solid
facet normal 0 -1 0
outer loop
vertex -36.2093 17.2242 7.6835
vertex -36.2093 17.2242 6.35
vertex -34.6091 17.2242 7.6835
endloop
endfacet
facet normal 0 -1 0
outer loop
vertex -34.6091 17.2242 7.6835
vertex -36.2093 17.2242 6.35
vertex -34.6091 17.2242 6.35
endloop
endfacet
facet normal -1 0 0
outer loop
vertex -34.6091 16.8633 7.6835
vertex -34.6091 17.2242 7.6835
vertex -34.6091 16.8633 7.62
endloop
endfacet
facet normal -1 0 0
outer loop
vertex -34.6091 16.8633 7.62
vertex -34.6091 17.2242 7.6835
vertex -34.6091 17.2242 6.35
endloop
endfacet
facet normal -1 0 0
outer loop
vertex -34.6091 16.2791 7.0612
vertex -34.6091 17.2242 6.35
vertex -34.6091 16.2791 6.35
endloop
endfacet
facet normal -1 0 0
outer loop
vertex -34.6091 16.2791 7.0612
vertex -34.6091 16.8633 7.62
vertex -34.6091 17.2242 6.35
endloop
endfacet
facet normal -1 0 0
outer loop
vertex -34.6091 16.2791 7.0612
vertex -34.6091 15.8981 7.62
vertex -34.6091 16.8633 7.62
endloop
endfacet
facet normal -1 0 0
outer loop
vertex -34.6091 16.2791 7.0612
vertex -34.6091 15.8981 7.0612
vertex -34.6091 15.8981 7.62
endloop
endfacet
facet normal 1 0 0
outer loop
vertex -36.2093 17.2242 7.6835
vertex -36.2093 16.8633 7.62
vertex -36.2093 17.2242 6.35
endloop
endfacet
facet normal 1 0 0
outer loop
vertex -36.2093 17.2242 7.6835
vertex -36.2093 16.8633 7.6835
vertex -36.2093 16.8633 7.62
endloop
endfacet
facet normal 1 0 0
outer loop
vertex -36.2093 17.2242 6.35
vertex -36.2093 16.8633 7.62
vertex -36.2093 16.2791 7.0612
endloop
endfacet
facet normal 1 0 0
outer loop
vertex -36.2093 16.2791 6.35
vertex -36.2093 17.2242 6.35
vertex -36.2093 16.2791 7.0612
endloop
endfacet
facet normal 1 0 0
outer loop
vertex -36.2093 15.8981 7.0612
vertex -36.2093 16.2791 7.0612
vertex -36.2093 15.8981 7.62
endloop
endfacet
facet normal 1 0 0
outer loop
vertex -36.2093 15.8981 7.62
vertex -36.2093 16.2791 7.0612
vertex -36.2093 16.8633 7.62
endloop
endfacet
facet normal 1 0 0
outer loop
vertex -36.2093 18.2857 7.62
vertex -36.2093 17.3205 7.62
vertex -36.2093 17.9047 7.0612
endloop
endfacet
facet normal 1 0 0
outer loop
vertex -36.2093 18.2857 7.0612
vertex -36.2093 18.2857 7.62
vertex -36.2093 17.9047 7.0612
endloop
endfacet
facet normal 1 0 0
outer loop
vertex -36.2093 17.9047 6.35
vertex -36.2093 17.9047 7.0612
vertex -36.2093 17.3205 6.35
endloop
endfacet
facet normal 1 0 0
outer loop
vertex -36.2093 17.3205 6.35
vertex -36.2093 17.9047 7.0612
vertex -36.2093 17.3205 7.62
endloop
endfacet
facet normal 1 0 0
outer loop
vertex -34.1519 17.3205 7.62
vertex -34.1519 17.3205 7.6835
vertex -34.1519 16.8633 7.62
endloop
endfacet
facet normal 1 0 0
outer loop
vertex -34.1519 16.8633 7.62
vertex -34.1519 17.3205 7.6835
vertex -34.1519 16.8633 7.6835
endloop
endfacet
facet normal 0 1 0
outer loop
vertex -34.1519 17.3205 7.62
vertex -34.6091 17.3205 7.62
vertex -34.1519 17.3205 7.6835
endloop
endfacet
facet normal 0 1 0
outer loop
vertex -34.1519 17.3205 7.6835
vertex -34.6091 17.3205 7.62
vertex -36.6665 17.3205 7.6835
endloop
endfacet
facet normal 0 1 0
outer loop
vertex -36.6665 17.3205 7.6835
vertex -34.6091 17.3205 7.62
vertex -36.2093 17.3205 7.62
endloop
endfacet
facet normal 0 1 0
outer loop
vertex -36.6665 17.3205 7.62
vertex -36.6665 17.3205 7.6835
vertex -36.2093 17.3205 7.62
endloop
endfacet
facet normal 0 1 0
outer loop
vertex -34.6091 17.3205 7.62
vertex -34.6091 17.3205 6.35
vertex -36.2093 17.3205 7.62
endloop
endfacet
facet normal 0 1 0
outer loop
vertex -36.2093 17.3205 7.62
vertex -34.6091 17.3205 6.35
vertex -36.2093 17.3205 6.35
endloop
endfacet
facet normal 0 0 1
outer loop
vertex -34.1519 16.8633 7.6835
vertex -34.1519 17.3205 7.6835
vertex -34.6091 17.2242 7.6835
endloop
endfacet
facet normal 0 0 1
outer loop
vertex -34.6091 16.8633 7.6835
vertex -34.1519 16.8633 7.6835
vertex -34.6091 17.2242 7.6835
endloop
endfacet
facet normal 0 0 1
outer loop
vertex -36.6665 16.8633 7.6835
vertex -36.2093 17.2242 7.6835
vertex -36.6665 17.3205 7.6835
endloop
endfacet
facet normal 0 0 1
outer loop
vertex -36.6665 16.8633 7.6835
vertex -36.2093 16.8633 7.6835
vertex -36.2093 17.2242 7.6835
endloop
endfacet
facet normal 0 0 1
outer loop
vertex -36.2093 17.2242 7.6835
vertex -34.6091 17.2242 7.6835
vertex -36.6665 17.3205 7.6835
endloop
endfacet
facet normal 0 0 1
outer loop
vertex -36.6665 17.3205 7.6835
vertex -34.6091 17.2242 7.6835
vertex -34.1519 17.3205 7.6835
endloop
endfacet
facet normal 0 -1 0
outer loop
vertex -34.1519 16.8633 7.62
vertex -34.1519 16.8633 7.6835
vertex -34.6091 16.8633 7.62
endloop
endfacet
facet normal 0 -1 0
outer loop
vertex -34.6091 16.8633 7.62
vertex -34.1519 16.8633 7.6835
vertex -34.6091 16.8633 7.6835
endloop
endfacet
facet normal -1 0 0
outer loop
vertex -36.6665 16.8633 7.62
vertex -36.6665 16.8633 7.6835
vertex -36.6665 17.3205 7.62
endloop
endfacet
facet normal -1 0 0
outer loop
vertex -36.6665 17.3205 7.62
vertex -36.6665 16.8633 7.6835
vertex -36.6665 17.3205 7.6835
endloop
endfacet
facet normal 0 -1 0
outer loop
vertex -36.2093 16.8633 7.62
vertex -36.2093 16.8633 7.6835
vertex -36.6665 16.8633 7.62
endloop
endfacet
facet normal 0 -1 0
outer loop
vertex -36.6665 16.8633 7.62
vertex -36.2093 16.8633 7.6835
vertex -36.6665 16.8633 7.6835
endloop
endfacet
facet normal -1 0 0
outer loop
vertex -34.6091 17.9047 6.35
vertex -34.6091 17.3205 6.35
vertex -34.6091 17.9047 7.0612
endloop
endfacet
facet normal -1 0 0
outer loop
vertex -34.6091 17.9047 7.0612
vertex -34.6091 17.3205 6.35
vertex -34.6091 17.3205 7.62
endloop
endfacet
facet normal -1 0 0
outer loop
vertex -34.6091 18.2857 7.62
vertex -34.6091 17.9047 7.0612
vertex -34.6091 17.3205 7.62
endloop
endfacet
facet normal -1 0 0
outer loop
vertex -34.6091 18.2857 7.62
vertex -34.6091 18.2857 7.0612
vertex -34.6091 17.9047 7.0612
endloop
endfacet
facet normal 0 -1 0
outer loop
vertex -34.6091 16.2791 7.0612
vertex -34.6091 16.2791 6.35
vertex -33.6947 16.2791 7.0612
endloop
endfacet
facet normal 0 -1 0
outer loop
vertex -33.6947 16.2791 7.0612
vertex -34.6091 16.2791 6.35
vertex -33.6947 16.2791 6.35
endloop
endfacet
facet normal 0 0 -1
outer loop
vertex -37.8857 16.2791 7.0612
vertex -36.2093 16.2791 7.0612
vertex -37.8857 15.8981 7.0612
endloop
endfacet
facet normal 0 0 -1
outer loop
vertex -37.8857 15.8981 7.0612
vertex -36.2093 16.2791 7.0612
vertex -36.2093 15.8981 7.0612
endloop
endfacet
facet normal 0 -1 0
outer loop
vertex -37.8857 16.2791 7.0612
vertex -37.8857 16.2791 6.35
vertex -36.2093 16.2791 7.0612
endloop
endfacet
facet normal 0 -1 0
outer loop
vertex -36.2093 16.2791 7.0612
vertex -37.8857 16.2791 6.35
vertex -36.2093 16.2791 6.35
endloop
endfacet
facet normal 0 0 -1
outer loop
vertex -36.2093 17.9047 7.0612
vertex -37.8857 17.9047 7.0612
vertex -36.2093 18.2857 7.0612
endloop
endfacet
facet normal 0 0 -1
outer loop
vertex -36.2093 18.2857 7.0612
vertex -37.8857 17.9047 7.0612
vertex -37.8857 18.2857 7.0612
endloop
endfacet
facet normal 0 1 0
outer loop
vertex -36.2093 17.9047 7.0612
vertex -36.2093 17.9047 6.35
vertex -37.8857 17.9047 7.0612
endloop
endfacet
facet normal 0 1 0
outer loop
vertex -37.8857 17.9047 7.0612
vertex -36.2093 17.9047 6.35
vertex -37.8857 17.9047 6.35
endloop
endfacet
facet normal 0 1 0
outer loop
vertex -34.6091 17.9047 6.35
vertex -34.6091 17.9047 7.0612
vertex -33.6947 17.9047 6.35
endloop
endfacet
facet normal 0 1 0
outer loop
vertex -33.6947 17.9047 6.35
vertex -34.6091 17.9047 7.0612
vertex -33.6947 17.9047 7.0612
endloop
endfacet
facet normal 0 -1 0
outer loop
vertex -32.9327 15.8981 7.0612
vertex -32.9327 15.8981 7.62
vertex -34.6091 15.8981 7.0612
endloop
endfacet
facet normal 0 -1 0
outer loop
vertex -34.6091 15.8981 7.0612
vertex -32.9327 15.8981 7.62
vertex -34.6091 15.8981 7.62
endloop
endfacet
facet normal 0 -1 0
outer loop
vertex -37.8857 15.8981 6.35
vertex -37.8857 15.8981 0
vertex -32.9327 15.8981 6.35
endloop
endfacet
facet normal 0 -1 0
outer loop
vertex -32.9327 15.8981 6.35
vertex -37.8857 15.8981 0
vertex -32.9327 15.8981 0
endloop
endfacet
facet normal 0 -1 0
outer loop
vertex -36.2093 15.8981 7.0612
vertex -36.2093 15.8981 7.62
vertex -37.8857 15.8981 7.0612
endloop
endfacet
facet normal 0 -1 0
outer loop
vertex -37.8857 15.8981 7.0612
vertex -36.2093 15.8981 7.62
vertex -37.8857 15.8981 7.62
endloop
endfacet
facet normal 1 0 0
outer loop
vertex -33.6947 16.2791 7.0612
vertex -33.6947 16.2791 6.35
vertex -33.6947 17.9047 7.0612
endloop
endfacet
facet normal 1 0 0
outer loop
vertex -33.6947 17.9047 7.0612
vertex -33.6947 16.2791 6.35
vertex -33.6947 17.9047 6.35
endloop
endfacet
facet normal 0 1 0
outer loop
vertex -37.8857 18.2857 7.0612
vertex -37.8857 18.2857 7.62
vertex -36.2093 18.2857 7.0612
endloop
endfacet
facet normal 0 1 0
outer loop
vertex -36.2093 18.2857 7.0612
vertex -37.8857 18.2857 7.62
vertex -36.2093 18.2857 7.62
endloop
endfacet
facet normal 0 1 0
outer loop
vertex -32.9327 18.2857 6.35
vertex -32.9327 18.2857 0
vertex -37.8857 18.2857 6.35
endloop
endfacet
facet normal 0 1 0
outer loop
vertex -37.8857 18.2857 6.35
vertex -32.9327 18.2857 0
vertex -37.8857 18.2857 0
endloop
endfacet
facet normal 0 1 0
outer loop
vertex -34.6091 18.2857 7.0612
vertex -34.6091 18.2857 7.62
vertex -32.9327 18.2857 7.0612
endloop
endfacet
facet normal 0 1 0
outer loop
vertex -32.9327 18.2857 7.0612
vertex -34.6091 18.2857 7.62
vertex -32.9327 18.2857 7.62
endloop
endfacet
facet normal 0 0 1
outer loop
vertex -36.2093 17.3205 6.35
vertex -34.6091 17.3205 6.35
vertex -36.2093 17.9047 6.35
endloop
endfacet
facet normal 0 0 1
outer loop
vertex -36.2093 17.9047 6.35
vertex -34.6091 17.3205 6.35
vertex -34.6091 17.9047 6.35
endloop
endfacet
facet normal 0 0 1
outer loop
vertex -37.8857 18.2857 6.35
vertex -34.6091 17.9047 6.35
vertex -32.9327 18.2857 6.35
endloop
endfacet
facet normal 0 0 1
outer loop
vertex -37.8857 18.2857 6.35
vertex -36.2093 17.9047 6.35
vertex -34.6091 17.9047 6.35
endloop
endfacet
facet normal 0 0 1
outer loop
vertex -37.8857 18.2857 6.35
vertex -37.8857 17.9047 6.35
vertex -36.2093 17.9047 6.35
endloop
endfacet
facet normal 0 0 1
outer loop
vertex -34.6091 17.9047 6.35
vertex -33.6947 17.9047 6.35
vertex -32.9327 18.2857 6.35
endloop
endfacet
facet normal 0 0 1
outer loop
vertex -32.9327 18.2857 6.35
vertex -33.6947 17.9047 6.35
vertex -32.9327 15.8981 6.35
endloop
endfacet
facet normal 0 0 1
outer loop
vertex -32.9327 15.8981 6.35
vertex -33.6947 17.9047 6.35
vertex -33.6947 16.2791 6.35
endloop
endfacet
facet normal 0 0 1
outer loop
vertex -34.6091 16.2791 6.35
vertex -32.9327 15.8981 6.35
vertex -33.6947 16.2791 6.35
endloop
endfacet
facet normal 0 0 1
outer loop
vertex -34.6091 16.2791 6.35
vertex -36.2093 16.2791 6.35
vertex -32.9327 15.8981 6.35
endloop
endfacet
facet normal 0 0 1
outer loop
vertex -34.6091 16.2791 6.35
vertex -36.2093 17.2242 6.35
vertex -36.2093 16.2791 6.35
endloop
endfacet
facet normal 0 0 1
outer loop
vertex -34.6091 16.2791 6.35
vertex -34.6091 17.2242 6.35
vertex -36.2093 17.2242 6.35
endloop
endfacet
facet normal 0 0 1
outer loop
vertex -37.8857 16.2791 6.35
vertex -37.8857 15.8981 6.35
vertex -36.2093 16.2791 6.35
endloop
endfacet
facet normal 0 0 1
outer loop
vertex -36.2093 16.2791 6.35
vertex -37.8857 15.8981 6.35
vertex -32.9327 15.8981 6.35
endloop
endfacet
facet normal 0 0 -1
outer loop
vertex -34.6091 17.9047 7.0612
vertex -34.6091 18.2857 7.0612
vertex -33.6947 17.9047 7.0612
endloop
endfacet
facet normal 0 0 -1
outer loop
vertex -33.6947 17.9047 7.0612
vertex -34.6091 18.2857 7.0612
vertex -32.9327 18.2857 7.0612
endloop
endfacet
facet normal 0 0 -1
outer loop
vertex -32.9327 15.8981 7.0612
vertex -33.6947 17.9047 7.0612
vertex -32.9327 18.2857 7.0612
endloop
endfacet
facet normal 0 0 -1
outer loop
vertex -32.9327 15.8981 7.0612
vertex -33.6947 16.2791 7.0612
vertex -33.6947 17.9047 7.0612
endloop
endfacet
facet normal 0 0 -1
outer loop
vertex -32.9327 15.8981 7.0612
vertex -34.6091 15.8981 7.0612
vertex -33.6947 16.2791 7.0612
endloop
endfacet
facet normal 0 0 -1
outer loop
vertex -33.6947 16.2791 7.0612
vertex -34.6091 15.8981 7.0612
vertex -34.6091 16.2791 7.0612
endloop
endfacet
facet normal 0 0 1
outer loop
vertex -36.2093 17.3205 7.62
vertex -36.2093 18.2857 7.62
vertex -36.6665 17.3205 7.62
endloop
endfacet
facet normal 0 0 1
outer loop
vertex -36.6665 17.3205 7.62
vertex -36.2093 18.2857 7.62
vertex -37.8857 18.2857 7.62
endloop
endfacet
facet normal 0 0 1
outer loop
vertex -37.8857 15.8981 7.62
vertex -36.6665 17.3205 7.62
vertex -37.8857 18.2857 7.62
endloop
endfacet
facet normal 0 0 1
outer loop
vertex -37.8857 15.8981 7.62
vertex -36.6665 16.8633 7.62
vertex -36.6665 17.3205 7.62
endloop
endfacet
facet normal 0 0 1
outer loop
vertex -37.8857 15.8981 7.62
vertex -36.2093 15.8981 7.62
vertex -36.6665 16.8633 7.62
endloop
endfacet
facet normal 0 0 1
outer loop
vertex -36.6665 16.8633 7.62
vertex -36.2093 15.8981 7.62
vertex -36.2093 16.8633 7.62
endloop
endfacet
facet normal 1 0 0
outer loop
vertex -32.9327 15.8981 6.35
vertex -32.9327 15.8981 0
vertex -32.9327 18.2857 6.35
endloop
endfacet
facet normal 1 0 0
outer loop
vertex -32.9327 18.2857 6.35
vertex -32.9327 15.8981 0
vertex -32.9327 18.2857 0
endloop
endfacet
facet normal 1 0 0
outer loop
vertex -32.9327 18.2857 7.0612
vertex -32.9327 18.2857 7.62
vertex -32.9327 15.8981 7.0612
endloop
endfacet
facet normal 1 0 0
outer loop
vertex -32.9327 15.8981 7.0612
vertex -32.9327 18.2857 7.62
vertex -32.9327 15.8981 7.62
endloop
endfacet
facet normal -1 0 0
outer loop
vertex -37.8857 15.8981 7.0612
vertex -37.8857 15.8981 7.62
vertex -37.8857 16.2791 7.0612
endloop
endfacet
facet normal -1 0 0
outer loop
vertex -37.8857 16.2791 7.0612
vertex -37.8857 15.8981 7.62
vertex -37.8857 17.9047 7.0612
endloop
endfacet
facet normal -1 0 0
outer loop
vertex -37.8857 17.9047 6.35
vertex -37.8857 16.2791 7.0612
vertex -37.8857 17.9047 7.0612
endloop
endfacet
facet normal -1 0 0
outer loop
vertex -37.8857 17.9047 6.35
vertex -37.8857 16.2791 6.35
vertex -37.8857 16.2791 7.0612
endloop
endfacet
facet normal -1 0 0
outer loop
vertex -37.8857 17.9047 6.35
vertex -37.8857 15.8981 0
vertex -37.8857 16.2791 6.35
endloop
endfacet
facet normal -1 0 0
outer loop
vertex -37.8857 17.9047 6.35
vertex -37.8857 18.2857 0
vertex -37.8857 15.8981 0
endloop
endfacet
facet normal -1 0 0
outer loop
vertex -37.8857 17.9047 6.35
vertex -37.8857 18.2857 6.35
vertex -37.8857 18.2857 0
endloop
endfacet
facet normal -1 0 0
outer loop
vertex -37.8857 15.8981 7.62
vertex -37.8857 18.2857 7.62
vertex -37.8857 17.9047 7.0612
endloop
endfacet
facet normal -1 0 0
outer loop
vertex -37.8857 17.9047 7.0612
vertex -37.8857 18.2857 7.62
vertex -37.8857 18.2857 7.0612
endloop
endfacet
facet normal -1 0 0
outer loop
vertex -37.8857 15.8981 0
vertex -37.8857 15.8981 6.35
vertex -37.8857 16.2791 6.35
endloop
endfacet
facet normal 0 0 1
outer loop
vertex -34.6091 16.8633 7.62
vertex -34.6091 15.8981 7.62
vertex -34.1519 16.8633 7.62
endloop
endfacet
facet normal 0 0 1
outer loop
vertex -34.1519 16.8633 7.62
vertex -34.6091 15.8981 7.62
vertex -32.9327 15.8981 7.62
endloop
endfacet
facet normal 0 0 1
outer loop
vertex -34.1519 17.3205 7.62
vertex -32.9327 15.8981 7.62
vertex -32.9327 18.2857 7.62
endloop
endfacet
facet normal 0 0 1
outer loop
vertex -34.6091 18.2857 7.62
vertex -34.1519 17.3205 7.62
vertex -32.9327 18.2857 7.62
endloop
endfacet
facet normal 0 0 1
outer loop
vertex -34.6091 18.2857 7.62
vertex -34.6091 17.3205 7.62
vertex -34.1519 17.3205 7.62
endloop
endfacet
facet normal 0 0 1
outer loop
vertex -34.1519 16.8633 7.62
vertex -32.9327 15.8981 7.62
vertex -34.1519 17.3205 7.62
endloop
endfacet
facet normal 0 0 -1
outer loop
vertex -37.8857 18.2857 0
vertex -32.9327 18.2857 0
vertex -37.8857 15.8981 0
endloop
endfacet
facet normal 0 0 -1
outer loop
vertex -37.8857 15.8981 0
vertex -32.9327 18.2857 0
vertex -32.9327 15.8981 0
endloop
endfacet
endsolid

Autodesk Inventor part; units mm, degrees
ref_plane "YZ Plane" through (0, 0, 0) normal (1, 0, 0) x (0, 1, 0)
ref_plane "XZ Plane" through (0, 0, 0) normal (0, 1, 0) x (-1, 0, 0)
ref_plane "XY Plane" through (0, 0, 0) normal (0, 0, 1) x (1, 0, 0)
sketch "Sketch1" plane through (0, 0, 0) normal (0, 0, 1) x (1, 0, 0)
  line L0 (-37.8857, 18.2857) -> (-32.9327, 18.2857)
  line L1 (-32.9327, 18.2857) -> (-32.9327, 15.8981)
  line L2 (-32.9327, 15.8981) -> (-37.8857, 15.8981)
  line L3 (-37.8857, 15.8981) -> (-37.8857, 18.2857)
  dimension "d0" = 4.953
  dimension "d1" = 2.3876
extrude "Extrusion1" add sketch "Sketch1" along normal blind 7.62
sketch "Sketch2" plane through (-37.8857, 15.8981, 0) normal (0, -1, 0) x (1, 0, 0)
  line L0 (4.953, 7.62) -> (0, 7.62) projected
  line L1 (1.6764, 7.62) -> (3.2766, 7.62)
  line L2 (3.2766, 7.62) -> (3.2766, 6.35)
  line L3 (3.2766, 6.35) -> (1.6764, 6.35)
  line L4 (1.6764, 6.35) -> (1.6764, 7.62)
  line L5 (0, 0) -> (0, 7.62) projected
  line L6 (4.953, 0) -> (4.953, 7.62) projected
  line L7 (4.953, 7.0612) -> (4.191, 7.0612)
  line L8 (4.191, 7.0612) -> (4.191, 6.35)
  line L9 (4.191, 6.35) -> (4.953, 6.35)
  line L10 (4.953, 6.35) -> (4.953, 7.0612)
  line L11 (0, 12.9286) -> (0.762, 12.9286)
  line L12 (0.762, 12.9286) -> (0.762, 12.2174)
  line L13 (0.762, 12.2174) -> (0, 12.2174)
  line L14 (0, 12.2174) -> (0, 12.9286)
  dimension "d4" = 1.6764
  dimension "d5" = 1.6764
  dimension "d6" = 1.27
  dimension "d9" = 0.5588
  dimension "d12" = 0
  dimension "d13" = 0.762
  dimension "d14" = 0.762
extrude "Extrusion2" cut sketch "Sketch2" against normal blind 13.4874
sketch "Sketch3" plane through (-33.6947, 15.8981, 7.0612) normal (1, 0, 0) x (0, 0, -1)
  line L0 (0, 2.3876) -> (0.7112, 2.3876) projected
  line L1 (0.7112, 0) -> (0, 0) projected
  line L2 (0.7112, 0) -> (0.7112, 2.3876) projected
  line L3 (0, 2.3876) -> (0.7112, 2.3876)
  line L4 (0.7112, 2.3876) -> (0.7112, 2.0066)
  line L5 (0.7112, 2.0066) -> (0, 2.0066)
  line L6 (0, 2.0066) -> (0, 2.3876)
  line L7 (0, 0) -> (0.7112, 0)
  line L8 (0.7112, 0) -> (0.7112, 0.381)
  line L9 (0.7112, 0.381) -> (0, 0.381)
  line L10 (0, 0.381) -> (0, 0)
  dimension "d15" = 0.381
  dimension "d16" = 0.381
extrude "Extrusion3" cut sketch "Sketch3" against normal blind 13.4874
sketch "Sketch4" plane through (0, 0, 7.62) normal (0, 0, 1) x (1, 0, 0)
  line L0 (-36.2093, 15.8981) -> (-36.2093, 18.2857) projected
  line L1 (-37.8857, 18.2857) -> (-36.2093, 18.2857) projected
  line L2 (-36.2093, 15.8981) -> (-37.8857, 15.8981) projected
  line L3 (-36.2093, 17.3205) -> (-36.6665, 17.3205)
  line L4 (-36.6665, 17.3205) -> (-36.6665, 16.8633)
  line L5 (-36.6665, 16.8633) -> (-36.2093, 16.8633)
  line L6 (-36.2093, 16.8633) -> (-36.2093, 17.3205)
  line L7 (-34.6091, 18.2857) -> (-34.6091, 15.8981) projected
  line L8 (-32.9327, 15.8981) -> (-34.6091, 15.8981) projected
  line L9 (-32.9327, 18.2857) -> (-32.9327, 15.8981) projected
  line L10 (-34.6091, 18.2857) -> (-32.9327, 18.2857) projected
  line L11 (-34.6091, 17.3205) -> (-34.1519, 17.3205)
  line L12 (-34.1519, 17.3205) -> (-34.1519, 16.8633)
  line L13 (-34.1519, 16.8633) -> (-34.6091, 16.8633)
  line L14 (-34.6091, 16.8633) -> (-34.6091, 17.3205)
  dimension "d19" = 0.4572
  dimension "d20" = 0.4572
  dimension "d21" = 0.4572
  dimension "d22" = 0.4572
  dimension "d23" = 0.9652
  dimension "d24" = 0.9652
  dimension "d25" = 0.9652
extrude "Extrusion4" add sketch "Sketch4" against normal mid plane 0.127 contours L5 L4 L3 L0 | L11 L12 L13 L7
sketch "Sketch5" plane through (-37.8857, 15.8981, 6.35) normal (0, 0, 1) x (1, 0, 0)
  line L0 (3.2766, 0.381) -> (3.2766, 2.0066) projected
  line L1 (1.6764, 1.4224) -> (1.6764, 0.9652) projected
  line L2 (1.2192, 1.4224) -> (1.6764, 1.4224) projected
  line L3 (1.2192, 0.9652) -> (1.2192, 1.4224) projected
  line L4 (1.6764, 0.9652) -> (1.2192, 0.9652) projected
  line L5 (3.2766, 1.4224) -> (3.7338, 1.4224) projected
  line L6 (3.2766, 0.9652) -> (3.2766, 1.4224) projected
  line L7 (3.7338, 0.9652) -> (3.2766, 0.9652) projected
  line L8 (3.7338, 1.4224) -> (3.7338, 0.9652) projected
  line L9 (1.6764, 1.4224) -> (3.2766, 1.4224)
  line L10 (3.2766, 1.4224) -> (3.2766, 1.3261)
  line L11 (3.2766, 1.3261) -> (1.6764, 1.3261)
  line L12 (1.6764, 1.3261) -> (1.6764, 1.4224)
extrude "Extrusion5" add sketch "Sketch5" along normal blind 1.3335 contours L11 L1 L9 L0
equation "\"d5\" = d4"
equation "\"d14\" = d13"
equation "\"d16\" = d15"
equation "\"d20\" = d19"
equation "\"d21\" = d20"
equation "\"d22\" = d21"
equation "\"d24\" = d23"
properties part number "2009_CTS_CopperPost2"
